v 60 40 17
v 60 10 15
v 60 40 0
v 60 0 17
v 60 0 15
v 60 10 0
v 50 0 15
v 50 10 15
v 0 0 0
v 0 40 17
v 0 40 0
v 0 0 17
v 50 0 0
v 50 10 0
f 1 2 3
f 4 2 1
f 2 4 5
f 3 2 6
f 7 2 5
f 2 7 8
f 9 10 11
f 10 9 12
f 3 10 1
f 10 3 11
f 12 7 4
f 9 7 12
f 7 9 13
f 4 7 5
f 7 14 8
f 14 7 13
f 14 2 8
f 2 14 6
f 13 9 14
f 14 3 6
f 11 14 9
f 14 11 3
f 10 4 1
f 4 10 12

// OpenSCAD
// Base Plate
module base_plate() {
    difference() {
        cube([60, 40, 10], center = false); // Main rectangular block
        translate([50, 0, 0]) cube([10, 10, 10], center = false); // Notch on one edge
    }
}

// Intermediate Plate
module intermediate_plate() {
    difference() {
        cube([60, 40, 5], center = false); // Main rectangular block
        translate([50, 0, 0]) cube([10, 10, 5], center = false); // Cutout on one side
    }
}

// Top Plate
module top_plate() {
    cube([60, 40, 2], center = false); // Flat rectangular plate
}

// Assembly
module assembly() {
    translate([0, 0, 15]) top_plate(); // Positioning the top plate
    translate([0, 0, 10]) intermediate_plate(); // Positioning the intermediate plate
    base_plate(); // Positioning the base plate
}

// Render the assembly
assembly();
